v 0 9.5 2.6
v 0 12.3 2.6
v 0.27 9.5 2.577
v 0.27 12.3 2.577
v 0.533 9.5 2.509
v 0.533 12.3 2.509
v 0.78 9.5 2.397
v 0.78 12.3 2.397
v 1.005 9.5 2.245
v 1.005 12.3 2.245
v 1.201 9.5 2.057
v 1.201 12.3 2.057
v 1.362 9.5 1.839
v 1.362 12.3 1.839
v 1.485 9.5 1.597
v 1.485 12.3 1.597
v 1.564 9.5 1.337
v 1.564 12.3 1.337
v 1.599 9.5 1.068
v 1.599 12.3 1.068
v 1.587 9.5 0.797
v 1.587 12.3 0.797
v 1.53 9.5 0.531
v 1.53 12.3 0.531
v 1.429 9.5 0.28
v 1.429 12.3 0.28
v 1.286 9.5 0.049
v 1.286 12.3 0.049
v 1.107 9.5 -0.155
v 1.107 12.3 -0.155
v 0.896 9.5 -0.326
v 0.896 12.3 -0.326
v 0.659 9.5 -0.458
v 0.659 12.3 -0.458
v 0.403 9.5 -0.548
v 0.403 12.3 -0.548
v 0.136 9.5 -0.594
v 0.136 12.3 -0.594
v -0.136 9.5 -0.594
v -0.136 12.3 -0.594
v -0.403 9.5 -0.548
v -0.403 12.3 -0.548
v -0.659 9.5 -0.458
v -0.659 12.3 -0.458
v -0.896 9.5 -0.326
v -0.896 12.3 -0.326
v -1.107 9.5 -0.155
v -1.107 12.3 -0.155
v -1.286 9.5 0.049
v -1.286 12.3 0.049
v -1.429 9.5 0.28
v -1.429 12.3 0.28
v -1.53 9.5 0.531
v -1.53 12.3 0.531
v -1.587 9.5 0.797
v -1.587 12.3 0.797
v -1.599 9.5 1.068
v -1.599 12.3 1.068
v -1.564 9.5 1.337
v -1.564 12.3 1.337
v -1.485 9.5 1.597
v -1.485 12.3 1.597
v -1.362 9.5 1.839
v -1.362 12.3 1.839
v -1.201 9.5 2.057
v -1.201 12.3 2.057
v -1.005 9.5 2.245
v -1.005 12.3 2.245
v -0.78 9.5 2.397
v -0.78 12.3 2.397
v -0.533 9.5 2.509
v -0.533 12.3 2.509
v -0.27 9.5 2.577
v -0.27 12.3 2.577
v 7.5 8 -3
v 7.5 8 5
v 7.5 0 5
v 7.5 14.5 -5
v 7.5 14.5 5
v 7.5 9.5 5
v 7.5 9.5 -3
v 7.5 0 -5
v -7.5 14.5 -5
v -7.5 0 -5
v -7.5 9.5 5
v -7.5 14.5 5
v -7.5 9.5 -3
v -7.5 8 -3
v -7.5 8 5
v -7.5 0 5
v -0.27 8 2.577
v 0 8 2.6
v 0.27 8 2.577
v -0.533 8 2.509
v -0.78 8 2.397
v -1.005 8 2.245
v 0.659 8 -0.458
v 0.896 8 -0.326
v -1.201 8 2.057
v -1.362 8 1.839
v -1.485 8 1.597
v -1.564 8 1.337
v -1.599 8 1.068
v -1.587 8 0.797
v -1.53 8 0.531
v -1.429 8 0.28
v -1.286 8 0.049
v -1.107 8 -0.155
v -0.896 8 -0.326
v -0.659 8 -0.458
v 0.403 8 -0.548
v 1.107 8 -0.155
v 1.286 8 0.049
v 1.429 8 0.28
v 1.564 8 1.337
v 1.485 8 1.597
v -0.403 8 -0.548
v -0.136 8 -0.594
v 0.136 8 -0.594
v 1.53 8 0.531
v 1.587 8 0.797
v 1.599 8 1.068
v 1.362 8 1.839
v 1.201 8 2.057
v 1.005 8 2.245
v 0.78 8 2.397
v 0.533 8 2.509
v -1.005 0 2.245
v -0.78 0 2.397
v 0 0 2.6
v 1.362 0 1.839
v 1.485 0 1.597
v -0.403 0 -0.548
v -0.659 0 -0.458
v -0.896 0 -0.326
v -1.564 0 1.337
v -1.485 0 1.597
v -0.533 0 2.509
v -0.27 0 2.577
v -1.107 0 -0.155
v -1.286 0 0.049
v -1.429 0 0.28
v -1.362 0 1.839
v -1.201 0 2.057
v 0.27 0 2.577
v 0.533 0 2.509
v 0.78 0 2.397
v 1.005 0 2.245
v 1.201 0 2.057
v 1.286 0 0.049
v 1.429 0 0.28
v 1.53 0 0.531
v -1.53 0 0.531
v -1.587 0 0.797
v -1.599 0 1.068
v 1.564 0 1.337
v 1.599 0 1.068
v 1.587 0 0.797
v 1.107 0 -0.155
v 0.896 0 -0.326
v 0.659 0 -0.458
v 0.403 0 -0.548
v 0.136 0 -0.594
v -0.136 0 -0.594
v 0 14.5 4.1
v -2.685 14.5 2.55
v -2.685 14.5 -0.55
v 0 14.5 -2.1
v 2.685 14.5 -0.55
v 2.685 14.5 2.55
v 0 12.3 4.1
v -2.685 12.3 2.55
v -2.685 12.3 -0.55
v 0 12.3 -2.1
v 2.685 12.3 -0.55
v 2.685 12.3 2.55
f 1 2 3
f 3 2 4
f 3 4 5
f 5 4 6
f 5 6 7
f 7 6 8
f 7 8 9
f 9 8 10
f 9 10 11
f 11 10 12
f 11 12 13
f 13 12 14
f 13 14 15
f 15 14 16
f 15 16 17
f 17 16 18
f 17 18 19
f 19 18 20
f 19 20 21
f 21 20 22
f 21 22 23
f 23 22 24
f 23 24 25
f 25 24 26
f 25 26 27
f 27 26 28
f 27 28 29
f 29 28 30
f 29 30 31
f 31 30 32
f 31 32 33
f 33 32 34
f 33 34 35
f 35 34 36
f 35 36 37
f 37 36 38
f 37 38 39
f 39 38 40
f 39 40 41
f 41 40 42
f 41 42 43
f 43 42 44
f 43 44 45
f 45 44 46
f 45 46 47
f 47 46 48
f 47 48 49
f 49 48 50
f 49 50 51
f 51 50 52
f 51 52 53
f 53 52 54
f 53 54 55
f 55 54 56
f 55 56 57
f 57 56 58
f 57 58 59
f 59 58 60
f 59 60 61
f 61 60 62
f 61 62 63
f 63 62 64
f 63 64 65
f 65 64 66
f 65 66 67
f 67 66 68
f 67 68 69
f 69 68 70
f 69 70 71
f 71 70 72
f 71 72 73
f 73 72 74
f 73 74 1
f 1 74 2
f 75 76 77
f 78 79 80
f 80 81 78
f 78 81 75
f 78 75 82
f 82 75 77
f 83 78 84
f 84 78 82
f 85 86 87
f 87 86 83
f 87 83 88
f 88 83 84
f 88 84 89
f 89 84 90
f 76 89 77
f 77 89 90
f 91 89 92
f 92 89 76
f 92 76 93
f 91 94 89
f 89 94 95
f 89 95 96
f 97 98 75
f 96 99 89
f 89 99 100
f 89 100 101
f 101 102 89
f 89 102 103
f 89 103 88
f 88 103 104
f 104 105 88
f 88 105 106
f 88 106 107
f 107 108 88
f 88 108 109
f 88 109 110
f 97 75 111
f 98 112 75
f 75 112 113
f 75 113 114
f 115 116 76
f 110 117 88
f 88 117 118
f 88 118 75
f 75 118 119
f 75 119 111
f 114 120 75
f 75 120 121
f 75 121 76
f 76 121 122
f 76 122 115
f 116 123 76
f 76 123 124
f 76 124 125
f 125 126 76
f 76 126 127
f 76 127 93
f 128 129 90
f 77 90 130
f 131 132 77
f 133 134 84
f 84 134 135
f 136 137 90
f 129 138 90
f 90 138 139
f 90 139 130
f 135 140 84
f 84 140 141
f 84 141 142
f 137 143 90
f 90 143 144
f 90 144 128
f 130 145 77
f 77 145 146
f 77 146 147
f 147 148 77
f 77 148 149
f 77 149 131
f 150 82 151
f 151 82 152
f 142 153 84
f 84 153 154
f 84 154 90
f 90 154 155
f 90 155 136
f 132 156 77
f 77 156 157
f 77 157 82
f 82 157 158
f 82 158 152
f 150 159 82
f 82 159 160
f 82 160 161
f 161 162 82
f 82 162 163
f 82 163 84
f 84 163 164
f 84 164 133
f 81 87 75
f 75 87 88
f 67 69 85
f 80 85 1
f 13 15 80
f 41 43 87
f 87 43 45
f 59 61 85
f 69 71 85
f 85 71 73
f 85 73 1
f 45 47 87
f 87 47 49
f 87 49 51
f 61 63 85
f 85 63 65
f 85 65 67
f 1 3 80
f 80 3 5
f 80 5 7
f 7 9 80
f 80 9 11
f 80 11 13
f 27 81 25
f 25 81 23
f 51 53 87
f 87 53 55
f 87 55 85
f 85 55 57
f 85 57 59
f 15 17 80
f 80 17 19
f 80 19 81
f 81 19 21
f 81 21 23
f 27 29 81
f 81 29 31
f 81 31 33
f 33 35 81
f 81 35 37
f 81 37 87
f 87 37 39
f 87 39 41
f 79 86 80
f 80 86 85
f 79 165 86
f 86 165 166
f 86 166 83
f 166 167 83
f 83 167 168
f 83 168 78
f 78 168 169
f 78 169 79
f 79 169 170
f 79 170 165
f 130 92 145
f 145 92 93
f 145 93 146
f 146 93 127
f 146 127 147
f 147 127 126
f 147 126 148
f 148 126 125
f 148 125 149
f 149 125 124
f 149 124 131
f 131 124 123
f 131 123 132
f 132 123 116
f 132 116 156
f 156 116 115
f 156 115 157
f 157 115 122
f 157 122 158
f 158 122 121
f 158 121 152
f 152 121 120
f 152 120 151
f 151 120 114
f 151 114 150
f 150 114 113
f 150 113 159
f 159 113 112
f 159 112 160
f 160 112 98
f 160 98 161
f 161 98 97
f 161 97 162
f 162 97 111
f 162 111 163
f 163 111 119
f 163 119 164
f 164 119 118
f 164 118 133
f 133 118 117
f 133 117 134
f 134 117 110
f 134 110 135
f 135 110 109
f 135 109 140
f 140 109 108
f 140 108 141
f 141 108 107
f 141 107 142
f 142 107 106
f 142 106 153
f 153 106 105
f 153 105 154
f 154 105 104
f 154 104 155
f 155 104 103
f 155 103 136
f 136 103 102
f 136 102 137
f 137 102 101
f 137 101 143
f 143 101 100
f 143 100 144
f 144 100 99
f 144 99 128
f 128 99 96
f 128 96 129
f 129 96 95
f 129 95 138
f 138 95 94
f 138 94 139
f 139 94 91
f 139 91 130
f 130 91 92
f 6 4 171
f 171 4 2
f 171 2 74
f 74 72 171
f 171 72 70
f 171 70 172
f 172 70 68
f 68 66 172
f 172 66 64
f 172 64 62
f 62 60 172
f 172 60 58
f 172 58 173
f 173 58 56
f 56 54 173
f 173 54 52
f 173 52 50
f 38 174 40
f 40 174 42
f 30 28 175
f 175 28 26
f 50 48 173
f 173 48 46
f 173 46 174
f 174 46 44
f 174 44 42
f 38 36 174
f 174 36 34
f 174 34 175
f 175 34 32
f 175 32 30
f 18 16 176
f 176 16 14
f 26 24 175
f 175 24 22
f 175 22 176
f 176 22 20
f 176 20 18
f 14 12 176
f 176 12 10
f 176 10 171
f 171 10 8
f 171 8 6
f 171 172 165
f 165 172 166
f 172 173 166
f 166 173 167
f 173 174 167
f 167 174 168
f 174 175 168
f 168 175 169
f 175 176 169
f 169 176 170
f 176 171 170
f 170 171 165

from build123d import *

# Parameters (mm, degrees)
SKETCH1_W    = 15
SKETCH1_H    = 10
BASE_DEPTH   = 8
SPACER_DEPTH = 1.5
SKETCH4_W    = 15
SKETCH4_H    = 10
TOP_DEPTH    = 5
SKETCH5_R    = 1.6
BORE_DEPTH   = 18.073371079
NUT_DEPTH    = 2.2


with BuildPart() as part:
    # Sketch1 → base (new body)
    with BuildSketch(Plane(origin=(0, 0, 0), x_dir=(1, 0, 0), z_dir=(0, 1, 0))):
        Rectangle(SKETCH1_W, SKETCH1_H)
    extrude(amount=BASE_DEPTH)

    # Sketch3 → spacer (add)
    with BuildSketch(Plane(origin=(0, 8, 0), x_dir=(1, 0, 0), z_dir=(0, 1, 0))):
        Polygon((-7.5, 3), (-5.99621099, 3), (5.99621099, 3), (7.5, 3), (7.5, 5), (-7.5, 5), align=None)
    extrude(amount=SPACER_DEPTH)

    # Sketch4 → top (add)
    with BuildSketch(Plane(origin=(0, 9.5, 0), x_dir=(1, 0, 0), z_dir=(0, 1, 0))):
        Rectangle(SKETCH4_W, SKETCH4_H)
    extrude(amount=TOP_DEPTH)

    # Sketch5 → bore (cut, through all)
    with BuildSketch(Plane(origin=(0, 14.5, 0), x_dir=(1, 0, 0), z_dir=(0, 1, 0))):
        with Locations(Location((0, -1, 0), (0, 0, 270))):
            Circle(SKETCH5_R)
    extrude(amount=-BORE_DEPTH, mode=Mode.SUBTRACT)

    # Sketch6 → nut (cut)
    with BuildSketch(Plane(origin=(0, 14.5, 0), x_dir=(1, 0, 0), z_dir=(0, 1, 0))):
        Polygon((0, -4.1), (2.684678752, -2.55), (2.684678752, 0.55), (0, 2.1), (-2.684678752, 0.55), (-2.684678752, -2.55), align=None)
    extrude(amount=-NUT_DEPTH, mode=Mode.SUBTRACT)


solid = part.part
